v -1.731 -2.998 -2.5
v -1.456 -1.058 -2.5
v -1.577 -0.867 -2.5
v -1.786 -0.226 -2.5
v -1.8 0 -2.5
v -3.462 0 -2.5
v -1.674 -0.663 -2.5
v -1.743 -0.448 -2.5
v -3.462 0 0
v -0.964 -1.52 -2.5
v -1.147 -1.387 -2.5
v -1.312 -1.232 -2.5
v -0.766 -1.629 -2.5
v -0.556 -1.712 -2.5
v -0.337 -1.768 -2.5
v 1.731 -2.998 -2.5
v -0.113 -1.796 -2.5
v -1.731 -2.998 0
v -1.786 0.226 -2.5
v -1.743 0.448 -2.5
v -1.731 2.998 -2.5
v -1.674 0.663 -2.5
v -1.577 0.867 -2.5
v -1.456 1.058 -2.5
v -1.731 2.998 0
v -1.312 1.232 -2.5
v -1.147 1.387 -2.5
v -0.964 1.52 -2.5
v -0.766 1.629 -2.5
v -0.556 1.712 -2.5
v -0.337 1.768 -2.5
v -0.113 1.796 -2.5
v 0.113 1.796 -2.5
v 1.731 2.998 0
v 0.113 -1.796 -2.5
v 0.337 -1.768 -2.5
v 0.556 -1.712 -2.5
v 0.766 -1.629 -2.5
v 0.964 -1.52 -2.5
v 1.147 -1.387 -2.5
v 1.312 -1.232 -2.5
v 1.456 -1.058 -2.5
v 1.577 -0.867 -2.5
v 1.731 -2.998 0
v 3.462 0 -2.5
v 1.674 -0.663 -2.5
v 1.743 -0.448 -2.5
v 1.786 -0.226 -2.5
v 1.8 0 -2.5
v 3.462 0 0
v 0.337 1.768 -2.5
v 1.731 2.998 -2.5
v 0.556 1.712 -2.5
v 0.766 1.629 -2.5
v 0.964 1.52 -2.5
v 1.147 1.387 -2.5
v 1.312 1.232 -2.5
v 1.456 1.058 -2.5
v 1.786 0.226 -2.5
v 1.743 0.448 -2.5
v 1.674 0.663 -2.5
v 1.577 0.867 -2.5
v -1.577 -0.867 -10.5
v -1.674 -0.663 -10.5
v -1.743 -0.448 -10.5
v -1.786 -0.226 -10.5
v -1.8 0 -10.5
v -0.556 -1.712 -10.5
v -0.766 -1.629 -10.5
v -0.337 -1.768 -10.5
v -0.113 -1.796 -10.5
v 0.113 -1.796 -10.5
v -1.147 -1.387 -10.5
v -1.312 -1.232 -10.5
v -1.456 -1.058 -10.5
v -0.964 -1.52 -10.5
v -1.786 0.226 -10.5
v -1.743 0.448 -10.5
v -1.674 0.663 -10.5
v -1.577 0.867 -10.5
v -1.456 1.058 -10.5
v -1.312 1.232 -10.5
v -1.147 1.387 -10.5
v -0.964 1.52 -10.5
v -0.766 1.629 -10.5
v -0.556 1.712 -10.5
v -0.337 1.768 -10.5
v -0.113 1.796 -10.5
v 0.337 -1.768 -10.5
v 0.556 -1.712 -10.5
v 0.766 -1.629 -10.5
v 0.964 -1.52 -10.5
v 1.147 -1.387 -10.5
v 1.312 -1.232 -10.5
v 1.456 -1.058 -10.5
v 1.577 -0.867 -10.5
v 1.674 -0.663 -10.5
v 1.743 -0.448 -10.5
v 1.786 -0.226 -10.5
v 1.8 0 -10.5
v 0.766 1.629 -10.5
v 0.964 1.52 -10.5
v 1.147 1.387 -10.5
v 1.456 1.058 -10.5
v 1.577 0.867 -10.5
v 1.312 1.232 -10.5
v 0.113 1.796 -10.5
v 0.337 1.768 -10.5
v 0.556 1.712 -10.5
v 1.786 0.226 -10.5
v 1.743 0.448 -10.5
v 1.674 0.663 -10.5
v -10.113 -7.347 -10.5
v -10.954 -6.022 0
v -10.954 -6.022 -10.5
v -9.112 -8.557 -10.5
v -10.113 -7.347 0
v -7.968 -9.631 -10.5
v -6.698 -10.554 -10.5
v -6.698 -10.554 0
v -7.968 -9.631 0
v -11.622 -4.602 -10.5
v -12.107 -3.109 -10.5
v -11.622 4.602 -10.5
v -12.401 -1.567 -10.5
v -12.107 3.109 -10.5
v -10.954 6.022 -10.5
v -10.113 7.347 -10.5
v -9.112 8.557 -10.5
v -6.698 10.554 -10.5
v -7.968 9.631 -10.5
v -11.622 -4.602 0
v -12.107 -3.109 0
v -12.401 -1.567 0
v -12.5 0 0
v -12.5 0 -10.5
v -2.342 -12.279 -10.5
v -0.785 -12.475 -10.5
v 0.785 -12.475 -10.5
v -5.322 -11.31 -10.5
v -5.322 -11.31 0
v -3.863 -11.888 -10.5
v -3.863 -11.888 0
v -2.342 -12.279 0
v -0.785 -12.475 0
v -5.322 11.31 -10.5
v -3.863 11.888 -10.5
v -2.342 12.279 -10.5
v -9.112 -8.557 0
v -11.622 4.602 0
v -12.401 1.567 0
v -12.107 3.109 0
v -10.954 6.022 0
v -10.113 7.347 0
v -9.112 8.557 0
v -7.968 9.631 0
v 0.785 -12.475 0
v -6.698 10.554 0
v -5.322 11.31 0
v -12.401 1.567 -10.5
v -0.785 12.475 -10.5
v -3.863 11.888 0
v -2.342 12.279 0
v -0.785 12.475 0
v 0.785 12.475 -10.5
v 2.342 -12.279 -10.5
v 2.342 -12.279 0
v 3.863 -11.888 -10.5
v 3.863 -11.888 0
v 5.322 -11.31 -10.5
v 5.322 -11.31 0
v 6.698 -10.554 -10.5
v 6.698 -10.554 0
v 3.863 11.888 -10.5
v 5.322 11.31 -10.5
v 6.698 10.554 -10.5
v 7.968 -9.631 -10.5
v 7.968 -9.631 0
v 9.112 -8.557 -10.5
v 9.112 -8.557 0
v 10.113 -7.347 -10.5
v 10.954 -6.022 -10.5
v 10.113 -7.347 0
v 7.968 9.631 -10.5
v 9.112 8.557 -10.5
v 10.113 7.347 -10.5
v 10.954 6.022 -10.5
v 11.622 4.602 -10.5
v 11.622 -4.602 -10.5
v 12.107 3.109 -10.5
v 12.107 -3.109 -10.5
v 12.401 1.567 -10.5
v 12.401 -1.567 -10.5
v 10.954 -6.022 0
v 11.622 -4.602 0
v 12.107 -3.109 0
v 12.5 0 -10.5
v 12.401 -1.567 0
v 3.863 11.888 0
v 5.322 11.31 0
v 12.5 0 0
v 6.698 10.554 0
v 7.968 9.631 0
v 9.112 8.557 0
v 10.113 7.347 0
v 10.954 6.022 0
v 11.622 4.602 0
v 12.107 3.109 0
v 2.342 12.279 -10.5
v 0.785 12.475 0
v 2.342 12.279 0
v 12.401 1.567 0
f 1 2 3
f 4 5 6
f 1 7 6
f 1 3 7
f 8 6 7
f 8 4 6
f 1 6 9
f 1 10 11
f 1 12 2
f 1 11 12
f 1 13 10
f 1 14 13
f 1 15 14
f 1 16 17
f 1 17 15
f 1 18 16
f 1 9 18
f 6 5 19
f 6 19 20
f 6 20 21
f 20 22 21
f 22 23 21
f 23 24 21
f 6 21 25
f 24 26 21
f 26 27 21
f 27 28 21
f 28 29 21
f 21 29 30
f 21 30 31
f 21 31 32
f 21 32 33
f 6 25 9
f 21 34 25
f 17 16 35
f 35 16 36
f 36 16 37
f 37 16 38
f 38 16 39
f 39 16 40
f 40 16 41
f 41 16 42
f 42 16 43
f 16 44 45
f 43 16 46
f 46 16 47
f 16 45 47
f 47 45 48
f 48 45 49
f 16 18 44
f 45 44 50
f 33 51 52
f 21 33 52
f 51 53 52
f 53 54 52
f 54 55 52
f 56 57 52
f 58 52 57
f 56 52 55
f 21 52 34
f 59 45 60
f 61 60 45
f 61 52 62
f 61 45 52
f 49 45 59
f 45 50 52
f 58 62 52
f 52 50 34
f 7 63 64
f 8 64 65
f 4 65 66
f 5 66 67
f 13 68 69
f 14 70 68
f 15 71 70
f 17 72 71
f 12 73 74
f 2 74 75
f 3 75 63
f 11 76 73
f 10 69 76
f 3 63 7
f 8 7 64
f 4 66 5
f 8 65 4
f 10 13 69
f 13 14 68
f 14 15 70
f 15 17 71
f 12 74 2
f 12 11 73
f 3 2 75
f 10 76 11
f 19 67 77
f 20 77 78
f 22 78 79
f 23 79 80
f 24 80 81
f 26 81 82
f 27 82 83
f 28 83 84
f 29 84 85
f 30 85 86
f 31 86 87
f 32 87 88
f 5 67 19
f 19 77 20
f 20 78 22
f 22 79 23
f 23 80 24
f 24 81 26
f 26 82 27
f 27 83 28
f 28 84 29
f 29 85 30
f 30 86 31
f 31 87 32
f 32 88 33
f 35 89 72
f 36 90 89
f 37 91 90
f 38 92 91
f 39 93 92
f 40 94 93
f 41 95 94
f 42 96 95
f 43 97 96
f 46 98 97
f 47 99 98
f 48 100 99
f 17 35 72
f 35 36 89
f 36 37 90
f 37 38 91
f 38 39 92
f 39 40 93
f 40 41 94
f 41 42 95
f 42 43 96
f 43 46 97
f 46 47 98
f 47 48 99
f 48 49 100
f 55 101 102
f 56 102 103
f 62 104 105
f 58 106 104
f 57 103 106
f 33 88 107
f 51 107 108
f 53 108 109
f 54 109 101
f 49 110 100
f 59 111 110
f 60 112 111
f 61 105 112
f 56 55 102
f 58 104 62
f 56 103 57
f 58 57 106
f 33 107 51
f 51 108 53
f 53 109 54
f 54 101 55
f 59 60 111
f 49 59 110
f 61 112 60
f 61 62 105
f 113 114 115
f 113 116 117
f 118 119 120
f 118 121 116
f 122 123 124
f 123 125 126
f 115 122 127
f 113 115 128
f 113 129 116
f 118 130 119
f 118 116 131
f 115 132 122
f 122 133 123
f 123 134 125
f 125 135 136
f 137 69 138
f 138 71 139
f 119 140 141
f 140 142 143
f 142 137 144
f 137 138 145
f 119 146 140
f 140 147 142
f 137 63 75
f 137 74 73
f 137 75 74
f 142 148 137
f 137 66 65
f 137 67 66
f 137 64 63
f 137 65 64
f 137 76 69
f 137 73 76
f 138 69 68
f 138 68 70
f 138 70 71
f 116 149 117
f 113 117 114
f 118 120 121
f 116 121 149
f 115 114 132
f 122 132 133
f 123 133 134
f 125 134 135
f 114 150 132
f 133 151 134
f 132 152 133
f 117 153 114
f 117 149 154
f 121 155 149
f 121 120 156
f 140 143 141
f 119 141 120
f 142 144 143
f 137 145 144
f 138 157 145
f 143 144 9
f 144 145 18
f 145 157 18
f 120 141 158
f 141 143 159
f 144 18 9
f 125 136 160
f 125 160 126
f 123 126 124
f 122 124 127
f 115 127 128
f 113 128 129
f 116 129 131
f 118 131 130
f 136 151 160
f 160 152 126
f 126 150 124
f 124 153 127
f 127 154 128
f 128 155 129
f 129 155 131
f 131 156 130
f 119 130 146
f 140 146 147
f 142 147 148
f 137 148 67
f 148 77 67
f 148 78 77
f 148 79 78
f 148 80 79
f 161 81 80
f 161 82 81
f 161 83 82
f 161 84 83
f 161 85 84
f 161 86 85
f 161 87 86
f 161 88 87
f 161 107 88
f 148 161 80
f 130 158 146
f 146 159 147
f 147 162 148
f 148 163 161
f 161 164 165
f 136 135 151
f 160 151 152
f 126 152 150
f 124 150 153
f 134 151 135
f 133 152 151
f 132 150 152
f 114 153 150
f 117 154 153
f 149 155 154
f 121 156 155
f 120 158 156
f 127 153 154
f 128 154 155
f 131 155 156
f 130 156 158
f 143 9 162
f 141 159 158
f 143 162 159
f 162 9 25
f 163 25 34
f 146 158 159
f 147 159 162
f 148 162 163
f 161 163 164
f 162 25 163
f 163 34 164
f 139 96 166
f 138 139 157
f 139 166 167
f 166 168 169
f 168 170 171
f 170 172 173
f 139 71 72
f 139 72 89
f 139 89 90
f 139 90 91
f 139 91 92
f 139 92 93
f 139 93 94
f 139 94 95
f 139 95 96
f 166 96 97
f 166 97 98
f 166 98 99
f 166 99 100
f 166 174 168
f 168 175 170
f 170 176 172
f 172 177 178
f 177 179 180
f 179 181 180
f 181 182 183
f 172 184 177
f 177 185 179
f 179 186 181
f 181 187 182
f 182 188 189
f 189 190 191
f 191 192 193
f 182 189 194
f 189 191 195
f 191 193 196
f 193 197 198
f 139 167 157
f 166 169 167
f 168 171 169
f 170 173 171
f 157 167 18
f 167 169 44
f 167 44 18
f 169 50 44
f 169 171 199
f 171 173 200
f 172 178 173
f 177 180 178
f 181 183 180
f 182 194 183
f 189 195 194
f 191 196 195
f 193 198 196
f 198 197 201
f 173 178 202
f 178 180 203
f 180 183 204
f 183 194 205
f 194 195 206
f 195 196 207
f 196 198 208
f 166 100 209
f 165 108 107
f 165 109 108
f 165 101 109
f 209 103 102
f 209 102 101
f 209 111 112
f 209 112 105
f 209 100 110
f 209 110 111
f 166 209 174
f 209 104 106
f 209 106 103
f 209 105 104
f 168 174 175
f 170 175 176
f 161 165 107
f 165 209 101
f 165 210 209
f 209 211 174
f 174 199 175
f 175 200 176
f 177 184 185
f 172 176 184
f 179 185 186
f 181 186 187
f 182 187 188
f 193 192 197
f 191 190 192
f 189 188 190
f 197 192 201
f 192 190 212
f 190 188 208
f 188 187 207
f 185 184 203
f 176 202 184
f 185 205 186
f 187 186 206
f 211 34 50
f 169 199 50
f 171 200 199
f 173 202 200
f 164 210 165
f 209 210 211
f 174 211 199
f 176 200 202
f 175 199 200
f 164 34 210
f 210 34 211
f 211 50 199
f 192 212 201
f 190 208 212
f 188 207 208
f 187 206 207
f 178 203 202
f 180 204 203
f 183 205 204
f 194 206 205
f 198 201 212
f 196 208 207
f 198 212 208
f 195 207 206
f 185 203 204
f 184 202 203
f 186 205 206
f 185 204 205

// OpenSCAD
$fn = 50;


difference() {
	union() {
		translate(v = [0, 0, -10.5000000000]) {
			cylinder(h = 10.5000000000, r = 12.5000000000);
		}
	}
	union() {
		translate(v = [0, 0, 0]) {
			rotate(a = [0, 0, 0]) {
				difference() {
					union() {
						translate(v = [0, 0, -2.5000000000]) {
							linear_extrude(height = 2.5000000000) {
								polygon(points = [[3.4620000000, 0.0000000000], [1.7310000000, 2.9981799479], [-1.7310000000, 2.9981799479], [-3.4620000000, 0.0000000000], [-1.7310000000, -2.9981799479], [1.7310000000, -2.9981799479]]);
							}
						}
					}
					union();
				}
			}
		}
		#translate(v = [0, 0, -100.0000000000]) {
			cylinder(h = 200, r = 1.8000000000);
		}
	}
}
